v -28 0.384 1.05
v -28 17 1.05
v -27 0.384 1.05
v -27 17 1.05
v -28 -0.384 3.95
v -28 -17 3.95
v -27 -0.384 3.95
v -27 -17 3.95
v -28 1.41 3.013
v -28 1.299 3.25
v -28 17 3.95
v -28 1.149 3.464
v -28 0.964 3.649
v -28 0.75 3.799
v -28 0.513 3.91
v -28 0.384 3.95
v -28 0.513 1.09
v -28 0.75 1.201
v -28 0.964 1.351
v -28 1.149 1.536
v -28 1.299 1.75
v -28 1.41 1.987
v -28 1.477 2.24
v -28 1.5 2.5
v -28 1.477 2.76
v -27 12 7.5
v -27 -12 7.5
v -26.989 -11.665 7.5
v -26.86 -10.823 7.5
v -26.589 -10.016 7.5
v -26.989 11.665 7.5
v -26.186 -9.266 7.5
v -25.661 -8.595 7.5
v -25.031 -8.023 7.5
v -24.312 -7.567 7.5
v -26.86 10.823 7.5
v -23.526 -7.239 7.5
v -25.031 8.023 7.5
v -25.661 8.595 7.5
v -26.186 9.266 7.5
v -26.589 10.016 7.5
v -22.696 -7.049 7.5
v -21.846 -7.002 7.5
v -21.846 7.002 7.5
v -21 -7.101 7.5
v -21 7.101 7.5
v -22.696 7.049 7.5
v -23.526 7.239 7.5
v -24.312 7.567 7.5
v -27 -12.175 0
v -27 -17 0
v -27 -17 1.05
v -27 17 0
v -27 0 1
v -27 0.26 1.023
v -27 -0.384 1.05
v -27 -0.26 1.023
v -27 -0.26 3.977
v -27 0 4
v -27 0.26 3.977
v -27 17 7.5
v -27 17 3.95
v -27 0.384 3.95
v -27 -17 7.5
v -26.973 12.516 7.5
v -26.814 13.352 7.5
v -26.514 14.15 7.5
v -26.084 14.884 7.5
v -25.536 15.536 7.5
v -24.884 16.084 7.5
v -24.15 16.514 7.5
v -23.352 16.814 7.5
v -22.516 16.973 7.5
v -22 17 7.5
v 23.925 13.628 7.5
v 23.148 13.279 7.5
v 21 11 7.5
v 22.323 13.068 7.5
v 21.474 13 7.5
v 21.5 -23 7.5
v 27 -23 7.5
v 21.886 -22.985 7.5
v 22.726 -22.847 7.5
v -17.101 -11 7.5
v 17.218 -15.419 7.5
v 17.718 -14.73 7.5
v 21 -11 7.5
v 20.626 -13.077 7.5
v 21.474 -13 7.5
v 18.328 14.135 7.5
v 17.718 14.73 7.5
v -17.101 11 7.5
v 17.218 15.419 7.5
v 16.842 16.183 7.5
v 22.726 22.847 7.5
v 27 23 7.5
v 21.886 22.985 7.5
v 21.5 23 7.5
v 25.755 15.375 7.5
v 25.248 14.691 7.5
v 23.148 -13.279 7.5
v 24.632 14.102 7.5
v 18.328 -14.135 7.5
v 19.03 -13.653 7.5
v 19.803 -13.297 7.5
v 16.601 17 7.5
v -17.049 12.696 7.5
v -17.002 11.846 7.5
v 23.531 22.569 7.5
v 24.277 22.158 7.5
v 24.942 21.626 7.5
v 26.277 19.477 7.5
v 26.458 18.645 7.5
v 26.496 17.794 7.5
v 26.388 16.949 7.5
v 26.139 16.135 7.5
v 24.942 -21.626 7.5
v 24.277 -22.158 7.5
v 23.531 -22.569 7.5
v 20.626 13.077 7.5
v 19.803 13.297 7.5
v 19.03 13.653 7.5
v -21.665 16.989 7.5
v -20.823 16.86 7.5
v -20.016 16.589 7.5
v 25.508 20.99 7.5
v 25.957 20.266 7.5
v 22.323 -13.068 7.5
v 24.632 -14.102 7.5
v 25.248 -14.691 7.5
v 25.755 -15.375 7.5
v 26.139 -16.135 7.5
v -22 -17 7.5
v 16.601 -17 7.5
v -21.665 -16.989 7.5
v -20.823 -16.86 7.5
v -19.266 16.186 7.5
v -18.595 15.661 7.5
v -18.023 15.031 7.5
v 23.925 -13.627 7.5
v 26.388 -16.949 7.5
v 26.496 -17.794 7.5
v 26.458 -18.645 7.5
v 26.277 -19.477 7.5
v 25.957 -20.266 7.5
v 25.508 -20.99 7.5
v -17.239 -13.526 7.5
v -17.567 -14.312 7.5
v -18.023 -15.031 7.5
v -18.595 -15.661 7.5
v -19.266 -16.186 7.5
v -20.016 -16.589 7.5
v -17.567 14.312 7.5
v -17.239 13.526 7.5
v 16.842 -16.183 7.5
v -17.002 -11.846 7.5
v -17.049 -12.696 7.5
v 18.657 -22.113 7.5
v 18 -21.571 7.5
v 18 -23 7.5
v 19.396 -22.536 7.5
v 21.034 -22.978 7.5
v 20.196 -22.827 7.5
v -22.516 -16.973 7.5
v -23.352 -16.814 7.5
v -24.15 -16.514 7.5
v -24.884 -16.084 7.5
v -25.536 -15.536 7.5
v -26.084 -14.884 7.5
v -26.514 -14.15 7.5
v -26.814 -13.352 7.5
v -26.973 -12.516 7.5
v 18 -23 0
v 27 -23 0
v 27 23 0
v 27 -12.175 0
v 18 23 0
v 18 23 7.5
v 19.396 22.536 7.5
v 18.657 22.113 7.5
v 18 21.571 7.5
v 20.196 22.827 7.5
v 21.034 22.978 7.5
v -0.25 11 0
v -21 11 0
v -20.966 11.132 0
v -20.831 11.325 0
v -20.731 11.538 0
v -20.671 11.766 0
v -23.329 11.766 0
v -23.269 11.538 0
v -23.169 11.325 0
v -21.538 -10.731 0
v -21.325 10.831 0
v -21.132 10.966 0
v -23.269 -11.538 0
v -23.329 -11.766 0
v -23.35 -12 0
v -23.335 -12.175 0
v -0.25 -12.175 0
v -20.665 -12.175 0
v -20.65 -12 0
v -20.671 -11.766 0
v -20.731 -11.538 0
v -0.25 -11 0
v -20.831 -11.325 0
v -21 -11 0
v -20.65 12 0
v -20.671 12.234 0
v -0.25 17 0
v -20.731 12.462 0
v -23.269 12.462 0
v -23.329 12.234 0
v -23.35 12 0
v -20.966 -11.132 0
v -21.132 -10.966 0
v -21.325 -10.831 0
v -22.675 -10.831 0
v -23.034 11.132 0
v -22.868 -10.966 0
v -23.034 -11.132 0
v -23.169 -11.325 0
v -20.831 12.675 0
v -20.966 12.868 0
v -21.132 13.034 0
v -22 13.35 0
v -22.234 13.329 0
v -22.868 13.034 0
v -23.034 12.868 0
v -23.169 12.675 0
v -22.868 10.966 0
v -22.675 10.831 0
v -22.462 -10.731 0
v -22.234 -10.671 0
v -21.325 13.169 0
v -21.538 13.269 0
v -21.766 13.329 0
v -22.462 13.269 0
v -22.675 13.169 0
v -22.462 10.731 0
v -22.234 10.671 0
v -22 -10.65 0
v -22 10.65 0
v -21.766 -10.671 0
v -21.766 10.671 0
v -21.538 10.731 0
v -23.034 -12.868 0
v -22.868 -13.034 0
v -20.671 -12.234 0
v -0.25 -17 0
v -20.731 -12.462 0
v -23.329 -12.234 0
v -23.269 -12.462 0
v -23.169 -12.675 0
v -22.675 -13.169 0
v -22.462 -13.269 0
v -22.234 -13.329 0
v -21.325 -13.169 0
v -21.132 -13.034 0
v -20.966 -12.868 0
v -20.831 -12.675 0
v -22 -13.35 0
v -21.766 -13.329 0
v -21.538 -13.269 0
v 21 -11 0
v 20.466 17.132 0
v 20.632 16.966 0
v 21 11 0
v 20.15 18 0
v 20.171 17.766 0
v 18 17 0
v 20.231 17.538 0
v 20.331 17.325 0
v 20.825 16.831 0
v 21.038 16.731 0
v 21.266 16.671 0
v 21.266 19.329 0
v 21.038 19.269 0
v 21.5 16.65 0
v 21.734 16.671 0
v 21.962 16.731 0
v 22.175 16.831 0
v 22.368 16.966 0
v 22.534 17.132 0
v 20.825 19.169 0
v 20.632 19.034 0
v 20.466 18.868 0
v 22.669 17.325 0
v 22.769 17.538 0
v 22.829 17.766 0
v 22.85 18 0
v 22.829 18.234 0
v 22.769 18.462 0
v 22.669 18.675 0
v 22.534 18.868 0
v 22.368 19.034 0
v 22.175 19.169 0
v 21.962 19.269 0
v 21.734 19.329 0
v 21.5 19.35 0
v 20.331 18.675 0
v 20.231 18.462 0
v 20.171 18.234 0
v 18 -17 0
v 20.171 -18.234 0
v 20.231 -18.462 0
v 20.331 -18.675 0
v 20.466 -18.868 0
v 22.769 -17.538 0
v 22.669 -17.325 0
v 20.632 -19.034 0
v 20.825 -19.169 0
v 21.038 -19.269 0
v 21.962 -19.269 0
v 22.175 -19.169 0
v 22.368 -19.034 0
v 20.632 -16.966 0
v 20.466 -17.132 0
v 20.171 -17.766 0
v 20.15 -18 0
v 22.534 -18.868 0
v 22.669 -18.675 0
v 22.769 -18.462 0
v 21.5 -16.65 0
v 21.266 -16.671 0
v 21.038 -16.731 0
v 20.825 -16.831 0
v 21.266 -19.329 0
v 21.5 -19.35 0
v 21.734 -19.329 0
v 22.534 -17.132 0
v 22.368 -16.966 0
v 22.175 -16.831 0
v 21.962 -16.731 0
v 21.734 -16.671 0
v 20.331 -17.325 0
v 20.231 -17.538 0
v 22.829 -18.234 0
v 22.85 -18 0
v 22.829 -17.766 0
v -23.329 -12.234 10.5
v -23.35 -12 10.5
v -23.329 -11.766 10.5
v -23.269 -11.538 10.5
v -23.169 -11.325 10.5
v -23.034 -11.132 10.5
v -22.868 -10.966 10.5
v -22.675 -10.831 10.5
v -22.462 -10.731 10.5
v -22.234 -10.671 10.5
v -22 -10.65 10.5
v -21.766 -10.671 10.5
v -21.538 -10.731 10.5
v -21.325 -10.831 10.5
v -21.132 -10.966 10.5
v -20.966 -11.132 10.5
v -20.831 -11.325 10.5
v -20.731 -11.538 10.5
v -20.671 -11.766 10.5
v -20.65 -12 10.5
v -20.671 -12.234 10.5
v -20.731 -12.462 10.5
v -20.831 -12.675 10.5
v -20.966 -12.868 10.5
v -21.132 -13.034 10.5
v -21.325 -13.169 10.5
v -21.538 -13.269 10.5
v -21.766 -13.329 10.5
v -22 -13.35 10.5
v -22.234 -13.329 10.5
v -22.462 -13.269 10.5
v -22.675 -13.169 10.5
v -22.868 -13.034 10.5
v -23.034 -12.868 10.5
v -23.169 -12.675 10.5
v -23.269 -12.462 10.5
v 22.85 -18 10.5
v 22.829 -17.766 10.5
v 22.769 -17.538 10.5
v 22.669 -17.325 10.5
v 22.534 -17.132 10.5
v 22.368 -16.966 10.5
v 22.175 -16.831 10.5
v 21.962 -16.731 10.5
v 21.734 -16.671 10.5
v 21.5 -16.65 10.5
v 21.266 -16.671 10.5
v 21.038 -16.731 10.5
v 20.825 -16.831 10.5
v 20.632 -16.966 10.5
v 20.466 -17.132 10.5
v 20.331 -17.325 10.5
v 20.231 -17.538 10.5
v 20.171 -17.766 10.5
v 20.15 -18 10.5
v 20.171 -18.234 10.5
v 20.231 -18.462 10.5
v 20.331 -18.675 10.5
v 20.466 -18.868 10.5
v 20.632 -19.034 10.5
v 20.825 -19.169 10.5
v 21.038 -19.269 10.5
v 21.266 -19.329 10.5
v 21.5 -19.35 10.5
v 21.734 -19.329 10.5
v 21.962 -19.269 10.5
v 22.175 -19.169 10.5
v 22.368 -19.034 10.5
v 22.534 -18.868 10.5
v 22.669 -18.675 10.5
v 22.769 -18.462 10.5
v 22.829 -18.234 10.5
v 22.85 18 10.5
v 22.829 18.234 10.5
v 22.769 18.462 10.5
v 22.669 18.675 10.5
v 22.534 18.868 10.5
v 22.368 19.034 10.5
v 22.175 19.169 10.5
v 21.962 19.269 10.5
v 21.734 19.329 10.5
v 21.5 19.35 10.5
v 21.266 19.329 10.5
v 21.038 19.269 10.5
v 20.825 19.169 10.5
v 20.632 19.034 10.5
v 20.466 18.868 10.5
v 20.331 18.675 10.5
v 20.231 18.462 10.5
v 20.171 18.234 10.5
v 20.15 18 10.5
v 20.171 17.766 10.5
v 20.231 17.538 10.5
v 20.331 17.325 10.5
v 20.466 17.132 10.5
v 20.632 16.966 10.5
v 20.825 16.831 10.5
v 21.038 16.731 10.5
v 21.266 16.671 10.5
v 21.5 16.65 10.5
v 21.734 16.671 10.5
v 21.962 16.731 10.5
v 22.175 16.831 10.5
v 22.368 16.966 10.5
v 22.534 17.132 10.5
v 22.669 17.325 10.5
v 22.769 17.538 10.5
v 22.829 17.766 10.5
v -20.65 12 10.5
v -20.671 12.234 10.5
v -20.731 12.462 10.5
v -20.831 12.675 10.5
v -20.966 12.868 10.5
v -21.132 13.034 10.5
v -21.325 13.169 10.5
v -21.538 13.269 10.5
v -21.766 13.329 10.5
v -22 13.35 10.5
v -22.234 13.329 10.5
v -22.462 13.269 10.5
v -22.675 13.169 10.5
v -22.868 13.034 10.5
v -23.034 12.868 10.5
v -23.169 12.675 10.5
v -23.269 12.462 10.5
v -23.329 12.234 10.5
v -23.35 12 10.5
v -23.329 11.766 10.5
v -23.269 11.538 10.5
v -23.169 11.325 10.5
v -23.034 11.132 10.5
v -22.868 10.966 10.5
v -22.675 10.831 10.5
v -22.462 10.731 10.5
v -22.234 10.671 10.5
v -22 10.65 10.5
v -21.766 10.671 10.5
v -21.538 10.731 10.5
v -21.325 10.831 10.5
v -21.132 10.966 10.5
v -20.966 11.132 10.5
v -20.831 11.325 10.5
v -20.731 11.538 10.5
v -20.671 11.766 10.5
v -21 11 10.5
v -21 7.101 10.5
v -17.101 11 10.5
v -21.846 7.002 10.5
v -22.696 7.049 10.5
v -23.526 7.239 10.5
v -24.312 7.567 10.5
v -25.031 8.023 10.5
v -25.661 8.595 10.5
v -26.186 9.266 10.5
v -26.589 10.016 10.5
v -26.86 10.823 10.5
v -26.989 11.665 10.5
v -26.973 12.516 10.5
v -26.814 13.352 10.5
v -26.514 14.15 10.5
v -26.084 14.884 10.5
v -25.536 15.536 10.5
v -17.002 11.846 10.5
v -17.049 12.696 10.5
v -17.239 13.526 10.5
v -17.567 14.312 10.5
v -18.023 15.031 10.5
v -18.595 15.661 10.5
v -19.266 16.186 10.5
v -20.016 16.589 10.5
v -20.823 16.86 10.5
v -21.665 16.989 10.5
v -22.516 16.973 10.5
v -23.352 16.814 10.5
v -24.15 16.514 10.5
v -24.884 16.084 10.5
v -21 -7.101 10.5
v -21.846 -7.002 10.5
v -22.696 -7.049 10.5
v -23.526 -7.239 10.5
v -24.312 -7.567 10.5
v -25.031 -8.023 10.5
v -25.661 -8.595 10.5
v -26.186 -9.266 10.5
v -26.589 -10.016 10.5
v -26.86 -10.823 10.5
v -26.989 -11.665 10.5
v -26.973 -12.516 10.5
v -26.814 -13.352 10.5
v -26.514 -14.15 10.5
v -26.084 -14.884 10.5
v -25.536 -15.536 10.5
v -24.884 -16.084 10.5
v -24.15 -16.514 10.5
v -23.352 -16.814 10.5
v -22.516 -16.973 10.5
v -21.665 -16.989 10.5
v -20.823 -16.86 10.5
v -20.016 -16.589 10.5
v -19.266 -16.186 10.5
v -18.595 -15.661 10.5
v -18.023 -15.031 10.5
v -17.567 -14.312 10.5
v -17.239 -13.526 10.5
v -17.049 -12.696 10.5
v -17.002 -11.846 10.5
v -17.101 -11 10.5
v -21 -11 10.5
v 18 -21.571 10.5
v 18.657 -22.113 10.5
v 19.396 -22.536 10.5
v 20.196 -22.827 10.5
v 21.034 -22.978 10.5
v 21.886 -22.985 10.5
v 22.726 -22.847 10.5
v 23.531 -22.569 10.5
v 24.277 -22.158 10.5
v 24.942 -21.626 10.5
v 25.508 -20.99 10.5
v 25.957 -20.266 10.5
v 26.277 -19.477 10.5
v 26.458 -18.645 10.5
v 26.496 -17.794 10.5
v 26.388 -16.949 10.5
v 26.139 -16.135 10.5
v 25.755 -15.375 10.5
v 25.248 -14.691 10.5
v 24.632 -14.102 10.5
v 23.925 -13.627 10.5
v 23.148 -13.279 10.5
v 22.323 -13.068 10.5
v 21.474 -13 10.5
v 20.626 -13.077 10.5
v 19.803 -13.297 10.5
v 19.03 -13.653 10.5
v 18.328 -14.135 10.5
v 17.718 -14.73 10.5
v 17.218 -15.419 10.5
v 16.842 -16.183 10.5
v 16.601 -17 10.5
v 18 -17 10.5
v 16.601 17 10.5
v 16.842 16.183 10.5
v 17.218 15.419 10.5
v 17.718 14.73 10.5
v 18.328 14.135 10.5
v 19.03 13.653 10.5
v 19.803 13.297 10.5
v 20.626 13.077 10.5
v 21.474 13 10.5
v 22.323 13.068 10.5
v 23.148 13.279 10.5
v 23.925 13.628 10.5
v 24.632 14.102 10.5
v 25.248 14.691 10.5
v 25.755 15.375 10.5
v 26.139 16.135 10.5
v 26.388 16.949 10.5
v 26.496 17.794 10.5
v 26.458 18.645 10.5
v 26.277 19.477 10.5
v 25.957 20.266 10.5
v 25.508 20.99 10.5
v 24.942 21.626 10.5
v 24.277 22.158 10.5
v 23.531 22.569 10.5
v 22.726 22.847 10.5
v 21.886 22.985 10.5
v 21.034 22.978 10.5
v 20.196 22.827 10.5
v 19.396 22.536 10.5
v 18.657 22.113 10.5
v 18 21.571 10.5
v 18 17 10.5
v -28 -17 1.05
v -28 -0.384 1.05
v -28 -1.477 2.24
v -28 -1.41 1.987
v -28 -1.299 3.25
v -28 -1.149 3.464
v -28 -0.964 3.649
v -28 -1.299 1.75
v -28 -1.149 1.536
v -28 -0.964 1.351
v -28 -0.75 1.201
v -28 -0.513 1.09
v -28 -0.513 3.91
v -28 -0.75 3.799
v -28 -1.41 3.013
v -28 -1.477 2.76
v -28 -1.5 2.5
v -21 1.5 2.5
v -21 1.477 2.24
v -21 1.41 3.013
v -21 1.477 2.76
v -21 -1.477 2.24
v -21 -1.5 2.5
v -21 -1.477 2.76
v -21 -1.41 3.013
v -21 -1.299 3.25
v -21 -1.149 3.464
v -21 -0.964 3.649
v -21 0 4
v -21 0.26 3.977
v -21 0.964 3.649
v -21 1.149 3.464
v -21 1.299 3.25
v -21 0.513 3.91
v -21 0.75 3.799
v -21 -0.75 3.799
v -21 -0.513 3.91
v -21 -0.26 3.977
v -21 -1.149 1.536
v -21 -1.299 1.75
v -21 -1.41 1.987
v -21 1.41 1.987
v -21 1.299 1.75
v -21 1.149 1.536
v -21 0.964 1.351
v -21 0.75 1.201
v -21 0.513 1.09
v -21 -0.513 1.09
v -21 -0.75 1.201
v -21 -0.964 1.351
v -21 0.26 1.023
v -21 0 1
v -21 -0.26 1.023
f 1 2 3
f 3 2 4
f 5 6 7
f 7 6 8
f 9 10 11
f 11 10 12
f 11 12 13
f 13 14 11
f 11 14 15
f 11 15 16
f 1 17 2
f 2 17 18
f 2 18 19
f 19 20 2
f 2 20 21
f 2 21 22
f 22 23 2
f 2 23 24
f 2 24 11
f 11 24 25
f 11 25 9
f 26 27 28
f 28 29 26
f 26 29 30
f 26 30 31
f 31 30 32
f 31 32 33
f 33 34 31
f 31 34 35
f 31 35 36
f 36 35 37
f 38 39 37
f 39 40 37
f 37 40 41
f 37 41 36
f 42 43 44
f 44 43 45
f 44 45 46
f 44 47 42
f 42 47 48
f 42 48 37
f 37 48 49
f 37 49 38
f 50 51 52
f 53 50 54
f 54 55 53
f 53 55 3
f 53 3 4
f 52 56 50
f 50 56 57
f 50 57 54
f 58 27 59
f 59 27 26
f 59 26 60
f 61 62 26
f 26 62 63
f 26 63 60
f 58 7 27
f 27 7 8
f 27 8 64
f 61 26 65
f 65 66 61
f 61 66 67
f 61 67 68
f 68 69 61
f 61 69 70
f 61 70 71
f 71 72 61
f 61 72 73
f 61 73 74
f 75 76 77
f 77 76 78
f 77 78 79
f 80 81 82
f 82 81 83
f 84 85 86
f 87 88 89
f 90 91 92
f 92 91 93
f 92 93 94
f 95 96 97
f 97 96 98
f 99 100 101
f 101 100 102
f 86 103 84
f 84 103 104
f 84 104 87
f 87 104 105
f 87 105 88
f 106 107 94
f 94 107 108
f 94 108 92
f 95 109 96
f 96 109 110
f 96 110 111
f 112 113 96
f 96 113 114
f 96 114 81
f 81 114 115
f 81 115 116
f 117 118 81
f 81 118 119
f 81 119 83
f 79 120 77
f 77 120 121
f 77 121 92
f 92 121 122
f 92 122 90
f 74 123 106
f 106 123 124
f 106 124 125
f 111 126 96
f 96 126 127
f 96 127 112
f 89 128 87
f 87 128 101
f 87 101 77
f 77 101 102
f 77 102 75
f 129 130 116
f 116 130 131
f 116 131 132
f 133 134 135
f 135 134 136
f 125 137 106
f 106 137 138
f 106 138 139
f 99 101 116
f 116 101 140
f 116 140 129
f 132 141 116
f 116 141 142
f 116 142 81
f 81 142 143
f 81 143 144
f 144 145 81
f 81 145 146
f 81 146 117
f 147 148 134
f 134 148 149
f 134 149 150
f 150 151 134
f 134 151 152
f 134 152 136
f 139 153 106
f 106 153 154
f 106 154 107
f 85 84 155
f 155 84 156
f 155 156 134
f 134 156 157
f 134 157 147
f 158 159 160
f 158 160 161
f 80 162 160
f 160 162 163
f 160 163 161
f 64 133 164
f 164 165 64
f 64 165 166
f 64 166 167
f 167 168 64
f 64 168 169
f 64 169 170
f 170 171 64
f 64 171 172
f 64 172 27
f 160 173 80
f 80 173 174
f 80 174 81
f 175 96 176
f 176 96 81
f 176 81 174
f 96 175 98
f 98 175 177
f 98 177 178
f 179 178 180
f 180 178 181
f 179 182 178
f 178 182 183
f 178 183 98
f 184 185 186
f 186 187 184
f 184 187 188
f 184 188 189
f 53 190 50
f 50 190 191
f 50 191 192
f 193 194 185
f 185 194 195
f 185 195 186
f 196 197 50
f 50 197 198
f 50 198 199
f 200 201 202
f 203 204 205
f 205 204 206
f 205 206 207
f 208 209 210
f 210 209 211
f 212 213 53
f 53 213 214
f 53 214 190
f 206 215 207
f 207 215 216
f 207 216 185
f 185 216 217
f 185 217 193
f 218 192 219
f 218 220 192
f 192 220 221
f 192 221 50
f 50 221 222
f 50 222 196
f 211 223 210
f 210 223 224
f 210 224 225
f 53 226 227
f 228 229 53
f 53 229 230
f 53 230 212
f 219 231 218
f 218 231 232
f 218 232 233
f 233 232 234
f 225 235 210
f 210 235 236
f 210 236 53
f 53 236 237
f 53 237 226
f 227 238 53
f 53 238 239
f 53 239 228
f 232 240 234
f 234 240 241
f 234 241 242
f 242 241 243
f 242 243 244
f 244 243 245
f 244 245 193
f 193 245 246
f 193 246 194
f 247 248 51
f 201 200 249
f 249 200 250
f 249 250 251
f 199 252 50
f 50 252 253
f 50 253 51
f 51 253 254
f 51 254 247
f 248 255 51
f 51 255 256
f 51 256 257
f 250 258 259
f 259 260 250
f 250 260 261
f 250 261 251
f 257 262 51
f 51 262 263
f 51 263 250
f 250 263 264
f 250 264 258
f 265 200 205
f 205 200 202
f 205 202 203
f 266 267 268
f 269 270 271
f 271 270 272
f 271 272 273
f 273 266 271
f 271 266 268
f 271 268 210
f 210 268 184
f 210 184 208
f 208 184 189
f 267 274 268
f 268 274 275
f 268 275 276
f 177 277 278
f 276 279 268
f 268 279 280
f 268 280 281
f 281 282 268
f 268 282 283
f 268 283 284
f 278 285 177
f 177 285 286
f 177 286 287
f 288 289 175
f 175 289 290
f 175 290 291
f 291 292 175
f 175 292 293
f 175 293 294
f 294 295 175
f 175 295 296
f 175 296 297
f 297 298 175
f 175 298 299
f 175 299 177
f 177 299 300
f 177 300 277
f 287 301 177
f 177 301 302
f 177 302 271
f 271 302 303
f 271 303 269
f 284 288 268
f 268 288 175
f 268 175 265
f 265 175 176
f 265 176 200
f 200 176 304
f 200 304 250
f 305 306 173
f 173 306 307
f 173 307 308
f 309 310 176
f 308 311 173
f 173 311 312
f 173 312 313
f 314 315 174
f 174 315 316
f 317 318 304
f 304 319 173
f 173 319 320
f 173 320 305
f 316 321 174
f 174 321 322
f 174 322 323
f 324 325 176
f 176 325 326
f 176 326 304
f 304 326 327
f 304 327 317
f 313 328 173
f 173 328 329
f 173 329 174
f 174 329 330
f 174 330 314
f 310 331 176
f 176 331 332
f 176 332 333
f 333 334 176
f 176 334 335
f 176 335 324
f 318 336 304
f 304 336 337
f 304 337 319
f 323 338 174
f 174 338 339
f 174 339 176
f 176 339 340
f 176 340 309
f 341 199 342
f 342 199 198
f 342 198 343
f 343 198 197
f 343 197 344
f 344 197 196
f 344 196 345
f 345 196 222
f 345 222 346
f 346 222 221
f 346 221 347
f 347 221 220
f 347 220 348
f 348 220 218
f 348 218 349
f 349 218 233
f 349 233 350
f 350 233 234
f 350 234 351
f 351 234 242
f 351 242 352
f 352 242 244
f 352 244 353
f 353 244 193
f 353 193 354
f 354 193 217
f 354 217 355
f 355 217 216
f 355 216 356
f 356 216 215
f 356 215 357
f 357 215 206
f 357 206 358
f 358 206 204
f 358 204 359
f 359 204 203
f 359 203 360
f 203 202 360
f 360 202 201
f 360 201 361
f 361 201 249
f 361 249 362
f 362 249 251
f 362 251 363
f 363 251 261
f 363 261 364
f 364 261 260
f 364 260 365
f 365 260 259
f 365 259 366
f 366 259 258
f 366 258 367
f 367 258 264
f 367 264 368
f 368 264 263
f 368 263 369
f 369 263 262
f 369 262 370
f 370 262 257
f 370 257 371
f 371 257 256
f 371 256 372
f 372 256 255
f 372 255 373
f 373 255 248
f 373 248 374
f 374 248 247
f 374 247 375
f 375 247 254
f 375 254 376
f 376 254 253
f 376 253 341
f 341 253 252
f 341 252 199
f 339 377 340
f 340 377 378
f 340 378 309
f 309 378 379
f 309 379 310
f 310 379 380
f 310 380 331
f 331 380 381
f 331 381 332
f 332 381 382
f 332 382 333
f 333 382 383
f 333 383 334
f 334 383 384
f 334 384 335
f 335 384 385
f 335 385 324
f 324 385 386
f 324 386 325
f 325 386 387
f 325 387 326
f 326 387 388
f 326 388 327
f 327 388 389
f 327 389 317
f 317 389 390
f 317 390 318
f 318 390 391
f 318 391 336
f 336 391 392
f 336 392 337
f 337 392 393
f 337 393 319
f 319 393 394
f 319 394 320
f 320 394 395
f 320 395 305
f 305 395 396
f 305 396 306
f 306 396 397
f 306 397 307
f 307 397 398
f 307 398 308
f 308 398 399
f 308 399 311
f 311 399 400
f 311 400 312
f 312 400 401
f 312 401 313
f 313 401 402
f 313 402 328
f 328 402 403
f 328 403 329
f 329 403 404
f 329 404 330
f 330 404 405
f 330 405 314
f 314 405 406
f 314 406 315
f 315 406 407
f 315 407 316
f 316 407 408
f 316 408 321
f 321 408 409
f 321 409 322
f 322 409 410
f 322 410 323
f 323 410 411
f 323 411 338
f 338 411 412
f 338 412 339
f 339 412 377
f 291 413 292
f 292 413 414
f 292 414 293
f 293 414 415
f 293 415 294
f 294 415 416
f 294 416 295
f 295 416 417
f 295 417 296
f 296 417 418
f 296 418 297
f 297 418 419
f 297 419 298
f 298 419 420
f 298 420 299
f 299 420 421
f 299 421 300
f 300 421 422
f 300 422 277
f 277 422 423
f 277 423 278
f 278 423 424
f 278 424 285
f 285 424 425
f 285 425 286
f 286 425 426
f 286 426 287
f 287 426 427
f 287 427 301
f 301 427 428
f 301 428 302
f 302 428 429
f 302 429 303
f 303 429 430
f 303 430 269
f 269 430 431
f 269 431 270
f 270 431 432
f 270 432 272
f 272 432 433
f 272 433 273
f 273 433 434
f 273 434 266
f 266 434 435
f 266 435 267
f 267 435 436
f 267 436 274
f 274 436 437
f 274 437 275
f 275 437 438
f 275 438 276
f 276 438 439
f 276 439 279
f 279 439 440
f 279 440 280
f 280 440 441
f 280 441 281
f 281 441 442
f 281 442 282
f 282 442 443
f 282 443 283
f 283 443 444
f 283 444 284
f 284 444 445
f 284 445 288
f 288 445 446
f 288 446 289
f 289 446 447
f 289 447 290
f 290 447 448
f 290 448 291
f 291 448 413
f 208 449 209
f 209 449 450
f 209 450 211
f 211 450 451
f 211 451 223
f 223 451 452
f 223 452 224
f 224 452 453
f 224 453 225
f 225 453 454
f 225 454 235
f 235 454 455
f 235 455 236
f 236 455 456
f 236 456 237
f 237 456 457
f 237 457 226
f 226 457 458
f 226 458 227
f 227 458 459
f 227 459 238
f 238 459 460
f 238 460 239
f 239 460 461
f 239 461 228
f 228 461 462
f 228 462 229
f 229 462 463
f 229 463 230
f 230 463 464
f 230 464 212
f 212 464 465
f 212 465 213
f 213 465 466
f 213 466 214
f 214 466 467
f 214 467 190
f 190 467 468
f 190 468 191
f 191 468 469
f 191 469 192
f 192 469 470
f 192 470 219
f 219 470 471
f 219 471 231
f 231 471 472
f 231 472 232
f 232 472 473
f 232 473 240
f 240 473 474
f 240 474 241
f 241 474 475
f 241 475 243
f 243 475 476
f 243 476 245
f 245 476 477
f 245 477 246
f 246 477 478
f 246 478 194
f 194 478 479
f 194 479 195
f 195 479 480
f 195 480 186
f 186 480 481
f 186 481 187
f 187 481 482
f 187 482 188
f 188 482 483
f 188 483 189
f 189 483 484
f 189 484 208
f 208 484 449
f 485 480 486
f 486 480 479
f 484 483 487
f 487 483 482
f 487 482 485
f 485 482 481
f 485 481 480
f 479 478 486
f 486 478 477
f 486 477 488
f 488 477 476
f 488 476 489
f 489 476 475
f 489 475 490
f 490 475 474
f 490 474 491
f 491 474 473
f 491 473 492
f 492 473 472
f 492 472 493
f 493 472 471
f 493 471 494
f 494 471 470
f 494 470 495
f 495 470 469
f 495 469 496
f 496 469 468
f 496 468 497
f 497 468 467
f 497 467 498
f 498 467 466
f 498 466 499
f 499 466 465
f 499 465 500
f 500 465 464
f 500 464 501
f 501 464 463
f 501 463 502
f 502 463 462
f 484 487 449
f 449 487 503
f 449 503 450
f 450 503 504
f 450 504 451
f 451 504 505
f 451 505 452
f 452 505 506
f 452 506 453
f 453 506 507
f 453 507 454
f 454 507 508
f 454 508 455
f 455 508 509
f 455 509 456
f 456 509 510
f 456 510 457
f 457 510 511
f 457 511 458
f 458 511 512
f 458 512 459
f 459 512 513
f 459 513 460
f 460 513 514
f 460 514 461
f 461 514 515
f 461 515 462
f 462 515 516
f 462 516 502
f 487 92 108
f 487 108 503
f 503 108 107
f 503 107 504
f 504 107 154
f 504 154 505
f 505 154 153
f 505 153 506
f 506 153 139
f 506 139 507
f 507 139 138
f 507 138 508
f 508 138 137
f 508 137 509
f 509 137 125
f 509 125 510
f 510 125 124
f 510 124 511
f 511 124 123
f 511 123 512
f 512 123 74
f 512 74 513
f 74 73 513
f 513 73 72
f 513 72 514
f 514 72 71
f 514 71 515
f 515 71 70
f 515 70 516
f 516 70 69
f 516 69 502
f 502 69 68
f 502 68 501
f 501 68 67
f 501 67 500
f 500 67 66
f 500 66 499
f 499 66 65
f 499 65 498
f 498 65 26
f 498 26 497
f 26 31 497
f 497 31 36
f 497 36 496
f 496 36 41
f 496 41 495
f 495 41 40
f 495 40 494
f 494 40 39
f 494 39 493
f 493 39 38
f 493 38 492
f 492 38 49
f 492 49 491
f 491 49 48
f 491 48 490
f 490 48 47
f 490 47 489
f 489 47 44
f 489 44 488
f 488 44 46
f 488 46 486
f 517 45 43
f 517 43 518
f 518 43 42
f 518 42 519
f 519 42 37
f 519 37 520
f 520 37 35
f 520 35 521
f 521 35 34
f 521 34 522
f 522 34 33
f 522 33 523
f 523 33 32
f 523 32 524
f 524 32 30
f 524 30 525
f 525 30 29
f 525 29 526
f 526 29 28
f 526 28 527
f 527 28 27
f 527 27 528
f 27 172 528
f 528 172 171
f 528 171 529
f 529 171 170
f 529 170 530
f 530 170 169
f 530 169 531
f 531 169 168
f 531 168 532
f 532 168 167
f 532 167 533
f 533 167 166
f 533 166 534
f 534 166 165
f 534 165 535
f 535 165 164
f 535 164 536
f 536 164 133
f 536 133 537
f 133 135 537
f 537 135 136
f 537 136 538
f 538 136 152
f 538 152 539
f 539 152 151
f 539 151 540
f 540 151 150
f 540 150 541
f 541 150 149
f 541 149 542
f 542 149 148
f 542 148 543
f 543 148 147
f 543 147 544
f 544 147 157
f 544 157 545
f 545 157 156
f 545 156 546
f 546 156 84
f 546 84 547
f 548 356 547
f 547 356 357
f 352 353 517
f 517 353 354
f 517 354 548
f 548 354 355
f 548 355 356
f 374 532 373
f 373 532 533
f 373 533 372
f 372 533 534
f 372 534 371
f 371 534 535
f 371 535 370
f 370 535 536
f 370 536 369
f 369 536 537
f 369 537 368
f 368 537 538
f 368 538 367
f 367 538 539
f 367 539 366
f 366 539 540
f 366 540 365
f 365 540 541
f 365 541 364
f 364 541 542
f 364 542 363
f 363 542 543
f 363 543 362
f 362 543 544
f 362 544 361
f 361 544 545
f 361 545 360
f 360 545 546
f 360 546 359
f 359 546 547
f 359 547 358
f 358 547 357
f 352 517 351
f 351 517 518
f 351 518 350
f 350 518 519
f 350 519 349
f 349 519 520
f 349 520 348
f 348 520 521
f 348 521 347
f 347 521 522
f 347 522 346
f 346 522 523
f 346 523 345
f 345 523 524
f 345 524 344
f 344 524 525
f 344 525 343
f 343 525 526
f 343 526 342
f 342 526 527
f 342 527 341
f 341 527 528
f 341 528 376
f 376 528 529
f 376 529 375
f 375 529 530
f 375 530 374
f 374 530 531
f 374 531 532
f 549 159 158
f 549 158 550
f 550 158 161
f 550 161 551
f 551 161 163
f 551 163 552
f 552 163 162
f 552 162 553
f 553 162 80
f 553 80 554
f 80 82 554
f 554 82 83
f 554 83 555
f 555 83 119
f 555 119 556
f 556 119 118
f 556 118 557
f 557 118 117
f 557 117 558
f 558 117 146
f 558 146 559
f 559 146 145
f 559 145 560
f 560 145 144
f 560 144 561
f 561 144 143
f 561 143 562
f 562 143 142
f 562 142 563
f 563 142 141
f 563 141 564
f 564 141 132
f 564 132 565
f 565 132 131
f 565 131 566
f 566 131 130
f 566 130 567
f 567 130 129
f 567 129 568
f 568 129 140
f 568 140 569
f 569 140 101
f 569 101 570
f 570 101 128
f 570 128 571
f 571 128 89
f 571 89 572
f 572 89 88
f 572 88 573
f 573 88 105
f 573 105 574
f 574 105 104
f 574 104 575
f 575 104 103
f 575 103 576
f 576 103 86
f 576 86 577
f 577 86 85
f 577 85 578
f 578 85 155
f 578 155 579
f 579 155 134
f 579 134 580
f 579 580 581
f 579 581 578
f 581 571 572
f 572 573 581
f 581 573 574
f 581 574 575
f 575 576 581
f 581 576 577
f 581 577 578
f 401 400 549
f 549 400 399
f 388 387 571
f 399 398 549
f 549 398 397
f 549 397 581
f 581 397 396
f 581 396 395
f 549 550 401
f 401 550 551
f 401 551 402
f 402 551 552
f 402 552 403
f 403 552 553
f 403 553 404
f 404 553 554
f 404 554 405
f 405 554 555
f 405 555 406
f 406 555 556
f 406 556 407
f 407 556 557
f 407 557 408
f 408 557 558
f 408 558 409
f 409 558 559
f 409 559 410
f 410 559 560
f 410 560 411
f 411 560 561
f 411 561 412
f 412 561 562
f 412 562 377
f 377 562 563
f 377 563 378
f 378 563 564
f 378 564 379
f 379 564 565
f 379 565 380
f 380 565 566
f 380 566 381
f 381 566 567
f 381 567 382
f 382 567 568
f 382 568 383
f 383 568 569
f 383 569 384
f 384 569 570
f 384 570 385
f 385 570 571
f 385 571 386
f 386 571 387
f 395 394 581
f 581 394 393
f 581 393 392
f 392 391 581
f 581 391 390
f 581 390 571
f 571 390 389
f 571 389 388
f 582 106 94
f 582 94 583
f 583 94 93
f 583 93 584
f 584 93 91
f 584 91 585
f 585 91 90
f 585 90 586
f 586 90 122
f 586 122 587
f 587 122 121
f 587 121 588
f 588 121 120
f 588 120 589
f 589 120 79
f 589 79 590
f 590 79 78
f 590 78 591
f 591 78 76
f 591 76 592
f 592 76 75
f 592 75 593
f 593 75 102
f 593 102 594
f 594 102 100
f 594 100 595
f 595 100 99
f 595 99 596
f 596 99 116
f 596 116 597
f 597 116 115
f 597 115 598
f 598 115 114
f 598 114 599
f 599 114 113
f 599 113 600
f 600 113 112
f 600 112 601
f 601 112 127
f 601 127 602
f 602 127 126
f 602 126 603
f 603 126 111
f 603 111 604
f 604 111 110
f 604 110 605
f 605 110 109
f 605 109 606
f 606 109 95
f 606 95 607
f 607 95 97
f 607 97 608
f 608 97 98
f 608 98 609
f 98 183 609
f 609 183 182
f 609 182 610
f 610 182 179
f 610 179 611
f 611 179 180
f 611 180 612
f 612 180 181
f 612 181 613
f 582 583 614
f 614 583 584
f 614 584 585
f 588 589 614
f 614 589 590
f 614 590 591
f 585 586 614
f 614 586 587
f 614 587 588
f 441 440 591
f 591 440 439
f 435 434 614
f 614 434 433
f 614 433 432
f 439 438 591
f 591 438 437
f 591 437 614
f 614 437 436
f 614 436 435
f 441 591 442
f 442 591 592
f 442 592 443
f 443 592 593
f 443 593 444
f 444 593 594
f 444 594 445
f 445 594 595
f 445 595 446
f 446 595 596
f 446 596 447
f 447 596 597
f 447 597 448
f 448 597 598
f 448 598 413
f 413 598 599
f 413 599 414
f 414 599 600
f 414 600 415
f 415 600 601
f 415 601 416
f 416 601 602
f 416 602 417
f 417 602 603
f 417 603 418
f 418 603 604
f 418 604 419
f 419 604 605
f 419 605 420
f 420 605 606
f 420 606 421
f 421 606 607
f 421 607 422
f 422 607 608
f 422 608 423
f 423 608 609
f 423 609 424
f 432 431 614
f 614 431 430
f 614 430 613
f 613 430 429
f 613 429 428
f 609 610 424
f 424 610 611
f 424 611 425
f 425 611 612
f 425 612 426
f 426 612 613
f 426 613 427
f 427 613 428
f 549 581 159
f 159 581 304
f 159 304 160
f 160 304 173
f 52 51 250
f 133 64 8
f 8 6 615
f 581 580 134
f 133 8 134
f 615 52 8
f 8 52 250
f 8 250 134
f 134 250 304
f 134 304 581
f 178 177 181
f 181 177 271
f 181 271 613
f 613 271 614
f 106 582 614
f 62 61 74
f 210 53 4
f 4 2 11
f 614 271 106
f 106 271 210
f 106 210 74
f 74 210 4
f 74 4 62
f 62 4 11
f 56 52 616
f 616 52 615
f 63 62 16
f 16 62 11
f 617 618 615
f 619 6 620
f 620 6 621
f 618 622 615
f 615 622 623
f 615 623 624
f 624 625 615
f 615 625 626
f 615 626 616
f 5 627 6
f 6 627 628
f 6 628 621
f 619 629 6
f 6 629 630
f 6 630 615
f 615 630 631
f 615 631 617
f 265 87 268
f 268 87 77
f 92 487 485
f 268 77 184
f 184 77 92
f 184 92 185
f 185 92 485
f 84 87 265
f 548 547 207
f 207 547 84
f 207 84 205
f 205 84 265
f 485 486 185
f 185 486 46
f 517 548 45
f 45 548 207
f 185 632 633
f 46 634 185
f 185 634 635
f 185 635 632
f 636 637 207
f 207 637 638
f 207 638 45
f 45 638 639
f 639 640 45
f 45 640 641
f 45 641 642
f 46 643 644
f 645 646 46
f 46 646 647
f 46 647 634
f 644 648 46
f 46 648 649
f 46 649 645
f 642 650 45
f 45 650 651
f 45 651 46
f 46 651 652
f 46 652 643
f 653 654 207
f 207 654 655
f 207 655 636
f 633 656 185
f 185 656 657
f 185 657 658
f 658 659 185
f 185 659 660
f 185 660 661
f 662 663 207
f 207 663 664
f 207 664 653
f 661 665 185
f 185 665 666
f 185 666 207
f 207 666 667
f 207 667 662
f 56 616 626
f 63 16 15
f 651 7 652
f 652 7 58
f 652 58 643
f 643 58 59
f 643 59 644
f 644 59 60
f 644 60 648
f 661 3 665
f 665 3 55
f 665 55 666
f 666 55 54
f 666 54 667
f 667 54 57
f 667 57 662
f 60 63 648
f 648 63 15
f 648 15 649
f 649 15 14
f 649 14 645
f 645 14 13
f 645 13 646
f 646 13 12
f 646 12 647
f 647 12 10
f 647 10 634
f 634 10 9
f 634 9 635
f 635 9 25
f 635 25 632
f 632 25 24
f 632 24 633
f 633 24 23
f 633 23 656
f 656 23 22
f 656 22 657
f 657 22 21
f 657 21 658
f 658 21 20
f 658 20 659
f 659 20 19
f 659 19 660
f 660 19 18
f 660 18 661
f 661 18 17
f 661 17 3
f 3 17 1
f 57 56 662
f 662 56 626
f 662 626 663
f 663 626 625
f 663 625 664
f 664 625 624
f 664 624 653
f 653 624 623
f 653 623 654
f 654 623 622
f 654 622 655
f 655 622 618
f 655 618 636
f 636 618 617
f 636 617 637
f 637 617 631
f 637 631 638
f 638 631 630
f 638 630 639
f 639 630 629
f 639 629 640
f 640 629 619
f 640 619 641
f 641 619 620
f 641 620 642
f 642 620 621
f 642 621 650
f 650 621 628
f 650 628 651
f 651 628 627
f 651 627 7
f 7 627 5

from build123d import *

# Parameters (mm, degrees)
ESQUISSE1_W             = 54
ESQUISSE1_H             = 46
MAIN_DEPTH              = 7.5
ESQUISSE2_R             = 1.35
USBFIXHOLES_DEPTH       = 8.5
ESQUISSE3_R             = 5
CIRCLESUPPORT_DEPTH     = 3
ESQUISSE4_W             = 45
ESQUISSE4_H             = 10.5
SIDECUTOFF_DEPTH        = 6
ESQUISSE6_W             = 45
ESQUISSE6_H             = 10.5
SIDELEFTCUTOFF_DEPTH    = 6
ESQUISSE7_W             = 2.9
ESQUISSE7_H             = 34
MAKERBEAMFIXSHAFT_DEPTH = 1
ESQUISSE10_W            = 42
ESQUISSE10_H            = 22
CENTRALHOLE_DEPTH       = 1
CENTRALHOLE_DEPTH_BACK  = 11.5
VERTICALFIXHOLE_REACH   = 57
ESQUISSE8_R             = 1.5
ESQUISSE11_R            = 1.35
USBFIXHOLES2_DEPTH      = 4


with BuildPart() as part:
    # Esquisse1 → Main (new body)
    with BuildSketch(Plane.XY):
        Rectangle(ESQUISSE1_W, ESQUISSE1_H)
    extrude(amount=MAIN_DEPTH)

    # Esquisse2 → UsbFixHoles (cut, through all)
    with BuildSketch(Plane.XY.offset(7.5)):
        with Locations((-22, -12)):
            Circle(ESQUISSE2_R)
        with Locations((-22, 12)):
            Circle(ESQUISSE2_R)
        with Locations((21.5, 18)):
            Circle(ESQUISSE2_R)
        with Locations((21.5, -18)):
            Circle(ESQUISSE2_R)
    extrude(amount=-USBFIXHOLES_DEPTH, mode=Mode.SUBTRACT)

    # Esquisse3 → CircleSupport (add)
    with BuildSketch(Plane.XY.offset(7.5)):
        with Locations((-22, 12)):
            Circle(ESQUISSE3_R)
        with Locations((-22, -12)):
            Circle(ESQUISSE3_R)
        with Locations((21.5, -18)):
            Circle(ESQUISSE3_R)
        with Locations((21.5, 18)):
            Circle(ESQUISSE3_R)
    extrude(amount=CIRCLESUPPORT_DEPTH)

    # Esquisse4 → SideCutoff (cut)
    with BuildSketch(Plane.XZ.offset(23)):
        with Locations((-4.5, 5.25)):
            Rectangle(ESQUISSE4_W, ESQUISSE4_H)
    extrude(amount=-SIDECUTOFF_DEPTH, mode=Mode.SUBTRACT)

    # Esquisse6 → SideLeftCutoff (cut)
    with BuildSketch(Plane(origin=(0, 23, 0), x_dir=(1, 0, 0), z_dir=(0, 1, 0))):
        with Locations((-4.5, -5.25)):
            Rectangle(ESQUISSE6_W, ESQUISSE6_H)
    extrude(amount=-SIDELEFTCUTOFF_DEPTH, mode=Mode.SUBTRACT)

    # Esquisse7 → MakerBeamFixShaft (add)
    with BuildSketch(Plane.ZY.offset(27)):
        with Locations((2.5, 0)):
            Rectangle(ESQUISSE7_W, ESQUISSE7_H)
    extrude(amount=MAKERBEAMFIXSHAFT_DEPTH)

    # Esquisse10 → CentralHole (cut, two sides)
    with BuildSketch(Plane.XY.offset(10.5)) as centralhole_sk:
        Rectangle(ESQUISSE10_W, ESQUISSE10_H)
    extrude(amount=CENTRALHOLE_DEPTH, mode=Mode.SUBTRACT)
    extrude(centralhole_sk.sketch, amount=-CENTRALHOLE_DEPTH_BACK, mode=Mode.SUBTRACT)

    # Esquisse8 → VerticalFixHole (cut, up to next)
    with BuildSketch(Plane.ZY.offset(28), mode=Mode.PRIVATE) as verticalfixhole_sk1:
        with Locations((2.5, 0)):
            Circle(ESQUISSE8_R)
    verticalfixhole_tool1 = extrude(verticalfixhole_sk1.sketch, amount=-VERTICALFIXHOLE_REACH, mode=Mode.PRIVATE) & part.part
    add(verticalfixhole_tool1.solids().sort_by_distance((-28, 0, 2.5))[0], mode=Mode.SUBTRACT)

    # Esquisse11 → UsbFixHoles2 (cut, through all)
    with BuildSketch(Plane(origin=(0, 0, 7.5), x_dir=(-1, 0, 0), z_dir=(0, 0, -1))):
        with Locations((-21.5, 18)):
            Circle(ESQUISSE11_R)
        with Locations((22, 12)):
            Circle(ESQUISSE11_R)
        with Locations((22, -12)):
            Circle(ESQUISSE11_R)
        with Locations((-21.5, -18)):
            Circle(ESQUISSE11_R)
    extrude(amount=-USBFIXHOLES2_DEPTH, mode=Mode.SUBTRACT)


solid = part.part
